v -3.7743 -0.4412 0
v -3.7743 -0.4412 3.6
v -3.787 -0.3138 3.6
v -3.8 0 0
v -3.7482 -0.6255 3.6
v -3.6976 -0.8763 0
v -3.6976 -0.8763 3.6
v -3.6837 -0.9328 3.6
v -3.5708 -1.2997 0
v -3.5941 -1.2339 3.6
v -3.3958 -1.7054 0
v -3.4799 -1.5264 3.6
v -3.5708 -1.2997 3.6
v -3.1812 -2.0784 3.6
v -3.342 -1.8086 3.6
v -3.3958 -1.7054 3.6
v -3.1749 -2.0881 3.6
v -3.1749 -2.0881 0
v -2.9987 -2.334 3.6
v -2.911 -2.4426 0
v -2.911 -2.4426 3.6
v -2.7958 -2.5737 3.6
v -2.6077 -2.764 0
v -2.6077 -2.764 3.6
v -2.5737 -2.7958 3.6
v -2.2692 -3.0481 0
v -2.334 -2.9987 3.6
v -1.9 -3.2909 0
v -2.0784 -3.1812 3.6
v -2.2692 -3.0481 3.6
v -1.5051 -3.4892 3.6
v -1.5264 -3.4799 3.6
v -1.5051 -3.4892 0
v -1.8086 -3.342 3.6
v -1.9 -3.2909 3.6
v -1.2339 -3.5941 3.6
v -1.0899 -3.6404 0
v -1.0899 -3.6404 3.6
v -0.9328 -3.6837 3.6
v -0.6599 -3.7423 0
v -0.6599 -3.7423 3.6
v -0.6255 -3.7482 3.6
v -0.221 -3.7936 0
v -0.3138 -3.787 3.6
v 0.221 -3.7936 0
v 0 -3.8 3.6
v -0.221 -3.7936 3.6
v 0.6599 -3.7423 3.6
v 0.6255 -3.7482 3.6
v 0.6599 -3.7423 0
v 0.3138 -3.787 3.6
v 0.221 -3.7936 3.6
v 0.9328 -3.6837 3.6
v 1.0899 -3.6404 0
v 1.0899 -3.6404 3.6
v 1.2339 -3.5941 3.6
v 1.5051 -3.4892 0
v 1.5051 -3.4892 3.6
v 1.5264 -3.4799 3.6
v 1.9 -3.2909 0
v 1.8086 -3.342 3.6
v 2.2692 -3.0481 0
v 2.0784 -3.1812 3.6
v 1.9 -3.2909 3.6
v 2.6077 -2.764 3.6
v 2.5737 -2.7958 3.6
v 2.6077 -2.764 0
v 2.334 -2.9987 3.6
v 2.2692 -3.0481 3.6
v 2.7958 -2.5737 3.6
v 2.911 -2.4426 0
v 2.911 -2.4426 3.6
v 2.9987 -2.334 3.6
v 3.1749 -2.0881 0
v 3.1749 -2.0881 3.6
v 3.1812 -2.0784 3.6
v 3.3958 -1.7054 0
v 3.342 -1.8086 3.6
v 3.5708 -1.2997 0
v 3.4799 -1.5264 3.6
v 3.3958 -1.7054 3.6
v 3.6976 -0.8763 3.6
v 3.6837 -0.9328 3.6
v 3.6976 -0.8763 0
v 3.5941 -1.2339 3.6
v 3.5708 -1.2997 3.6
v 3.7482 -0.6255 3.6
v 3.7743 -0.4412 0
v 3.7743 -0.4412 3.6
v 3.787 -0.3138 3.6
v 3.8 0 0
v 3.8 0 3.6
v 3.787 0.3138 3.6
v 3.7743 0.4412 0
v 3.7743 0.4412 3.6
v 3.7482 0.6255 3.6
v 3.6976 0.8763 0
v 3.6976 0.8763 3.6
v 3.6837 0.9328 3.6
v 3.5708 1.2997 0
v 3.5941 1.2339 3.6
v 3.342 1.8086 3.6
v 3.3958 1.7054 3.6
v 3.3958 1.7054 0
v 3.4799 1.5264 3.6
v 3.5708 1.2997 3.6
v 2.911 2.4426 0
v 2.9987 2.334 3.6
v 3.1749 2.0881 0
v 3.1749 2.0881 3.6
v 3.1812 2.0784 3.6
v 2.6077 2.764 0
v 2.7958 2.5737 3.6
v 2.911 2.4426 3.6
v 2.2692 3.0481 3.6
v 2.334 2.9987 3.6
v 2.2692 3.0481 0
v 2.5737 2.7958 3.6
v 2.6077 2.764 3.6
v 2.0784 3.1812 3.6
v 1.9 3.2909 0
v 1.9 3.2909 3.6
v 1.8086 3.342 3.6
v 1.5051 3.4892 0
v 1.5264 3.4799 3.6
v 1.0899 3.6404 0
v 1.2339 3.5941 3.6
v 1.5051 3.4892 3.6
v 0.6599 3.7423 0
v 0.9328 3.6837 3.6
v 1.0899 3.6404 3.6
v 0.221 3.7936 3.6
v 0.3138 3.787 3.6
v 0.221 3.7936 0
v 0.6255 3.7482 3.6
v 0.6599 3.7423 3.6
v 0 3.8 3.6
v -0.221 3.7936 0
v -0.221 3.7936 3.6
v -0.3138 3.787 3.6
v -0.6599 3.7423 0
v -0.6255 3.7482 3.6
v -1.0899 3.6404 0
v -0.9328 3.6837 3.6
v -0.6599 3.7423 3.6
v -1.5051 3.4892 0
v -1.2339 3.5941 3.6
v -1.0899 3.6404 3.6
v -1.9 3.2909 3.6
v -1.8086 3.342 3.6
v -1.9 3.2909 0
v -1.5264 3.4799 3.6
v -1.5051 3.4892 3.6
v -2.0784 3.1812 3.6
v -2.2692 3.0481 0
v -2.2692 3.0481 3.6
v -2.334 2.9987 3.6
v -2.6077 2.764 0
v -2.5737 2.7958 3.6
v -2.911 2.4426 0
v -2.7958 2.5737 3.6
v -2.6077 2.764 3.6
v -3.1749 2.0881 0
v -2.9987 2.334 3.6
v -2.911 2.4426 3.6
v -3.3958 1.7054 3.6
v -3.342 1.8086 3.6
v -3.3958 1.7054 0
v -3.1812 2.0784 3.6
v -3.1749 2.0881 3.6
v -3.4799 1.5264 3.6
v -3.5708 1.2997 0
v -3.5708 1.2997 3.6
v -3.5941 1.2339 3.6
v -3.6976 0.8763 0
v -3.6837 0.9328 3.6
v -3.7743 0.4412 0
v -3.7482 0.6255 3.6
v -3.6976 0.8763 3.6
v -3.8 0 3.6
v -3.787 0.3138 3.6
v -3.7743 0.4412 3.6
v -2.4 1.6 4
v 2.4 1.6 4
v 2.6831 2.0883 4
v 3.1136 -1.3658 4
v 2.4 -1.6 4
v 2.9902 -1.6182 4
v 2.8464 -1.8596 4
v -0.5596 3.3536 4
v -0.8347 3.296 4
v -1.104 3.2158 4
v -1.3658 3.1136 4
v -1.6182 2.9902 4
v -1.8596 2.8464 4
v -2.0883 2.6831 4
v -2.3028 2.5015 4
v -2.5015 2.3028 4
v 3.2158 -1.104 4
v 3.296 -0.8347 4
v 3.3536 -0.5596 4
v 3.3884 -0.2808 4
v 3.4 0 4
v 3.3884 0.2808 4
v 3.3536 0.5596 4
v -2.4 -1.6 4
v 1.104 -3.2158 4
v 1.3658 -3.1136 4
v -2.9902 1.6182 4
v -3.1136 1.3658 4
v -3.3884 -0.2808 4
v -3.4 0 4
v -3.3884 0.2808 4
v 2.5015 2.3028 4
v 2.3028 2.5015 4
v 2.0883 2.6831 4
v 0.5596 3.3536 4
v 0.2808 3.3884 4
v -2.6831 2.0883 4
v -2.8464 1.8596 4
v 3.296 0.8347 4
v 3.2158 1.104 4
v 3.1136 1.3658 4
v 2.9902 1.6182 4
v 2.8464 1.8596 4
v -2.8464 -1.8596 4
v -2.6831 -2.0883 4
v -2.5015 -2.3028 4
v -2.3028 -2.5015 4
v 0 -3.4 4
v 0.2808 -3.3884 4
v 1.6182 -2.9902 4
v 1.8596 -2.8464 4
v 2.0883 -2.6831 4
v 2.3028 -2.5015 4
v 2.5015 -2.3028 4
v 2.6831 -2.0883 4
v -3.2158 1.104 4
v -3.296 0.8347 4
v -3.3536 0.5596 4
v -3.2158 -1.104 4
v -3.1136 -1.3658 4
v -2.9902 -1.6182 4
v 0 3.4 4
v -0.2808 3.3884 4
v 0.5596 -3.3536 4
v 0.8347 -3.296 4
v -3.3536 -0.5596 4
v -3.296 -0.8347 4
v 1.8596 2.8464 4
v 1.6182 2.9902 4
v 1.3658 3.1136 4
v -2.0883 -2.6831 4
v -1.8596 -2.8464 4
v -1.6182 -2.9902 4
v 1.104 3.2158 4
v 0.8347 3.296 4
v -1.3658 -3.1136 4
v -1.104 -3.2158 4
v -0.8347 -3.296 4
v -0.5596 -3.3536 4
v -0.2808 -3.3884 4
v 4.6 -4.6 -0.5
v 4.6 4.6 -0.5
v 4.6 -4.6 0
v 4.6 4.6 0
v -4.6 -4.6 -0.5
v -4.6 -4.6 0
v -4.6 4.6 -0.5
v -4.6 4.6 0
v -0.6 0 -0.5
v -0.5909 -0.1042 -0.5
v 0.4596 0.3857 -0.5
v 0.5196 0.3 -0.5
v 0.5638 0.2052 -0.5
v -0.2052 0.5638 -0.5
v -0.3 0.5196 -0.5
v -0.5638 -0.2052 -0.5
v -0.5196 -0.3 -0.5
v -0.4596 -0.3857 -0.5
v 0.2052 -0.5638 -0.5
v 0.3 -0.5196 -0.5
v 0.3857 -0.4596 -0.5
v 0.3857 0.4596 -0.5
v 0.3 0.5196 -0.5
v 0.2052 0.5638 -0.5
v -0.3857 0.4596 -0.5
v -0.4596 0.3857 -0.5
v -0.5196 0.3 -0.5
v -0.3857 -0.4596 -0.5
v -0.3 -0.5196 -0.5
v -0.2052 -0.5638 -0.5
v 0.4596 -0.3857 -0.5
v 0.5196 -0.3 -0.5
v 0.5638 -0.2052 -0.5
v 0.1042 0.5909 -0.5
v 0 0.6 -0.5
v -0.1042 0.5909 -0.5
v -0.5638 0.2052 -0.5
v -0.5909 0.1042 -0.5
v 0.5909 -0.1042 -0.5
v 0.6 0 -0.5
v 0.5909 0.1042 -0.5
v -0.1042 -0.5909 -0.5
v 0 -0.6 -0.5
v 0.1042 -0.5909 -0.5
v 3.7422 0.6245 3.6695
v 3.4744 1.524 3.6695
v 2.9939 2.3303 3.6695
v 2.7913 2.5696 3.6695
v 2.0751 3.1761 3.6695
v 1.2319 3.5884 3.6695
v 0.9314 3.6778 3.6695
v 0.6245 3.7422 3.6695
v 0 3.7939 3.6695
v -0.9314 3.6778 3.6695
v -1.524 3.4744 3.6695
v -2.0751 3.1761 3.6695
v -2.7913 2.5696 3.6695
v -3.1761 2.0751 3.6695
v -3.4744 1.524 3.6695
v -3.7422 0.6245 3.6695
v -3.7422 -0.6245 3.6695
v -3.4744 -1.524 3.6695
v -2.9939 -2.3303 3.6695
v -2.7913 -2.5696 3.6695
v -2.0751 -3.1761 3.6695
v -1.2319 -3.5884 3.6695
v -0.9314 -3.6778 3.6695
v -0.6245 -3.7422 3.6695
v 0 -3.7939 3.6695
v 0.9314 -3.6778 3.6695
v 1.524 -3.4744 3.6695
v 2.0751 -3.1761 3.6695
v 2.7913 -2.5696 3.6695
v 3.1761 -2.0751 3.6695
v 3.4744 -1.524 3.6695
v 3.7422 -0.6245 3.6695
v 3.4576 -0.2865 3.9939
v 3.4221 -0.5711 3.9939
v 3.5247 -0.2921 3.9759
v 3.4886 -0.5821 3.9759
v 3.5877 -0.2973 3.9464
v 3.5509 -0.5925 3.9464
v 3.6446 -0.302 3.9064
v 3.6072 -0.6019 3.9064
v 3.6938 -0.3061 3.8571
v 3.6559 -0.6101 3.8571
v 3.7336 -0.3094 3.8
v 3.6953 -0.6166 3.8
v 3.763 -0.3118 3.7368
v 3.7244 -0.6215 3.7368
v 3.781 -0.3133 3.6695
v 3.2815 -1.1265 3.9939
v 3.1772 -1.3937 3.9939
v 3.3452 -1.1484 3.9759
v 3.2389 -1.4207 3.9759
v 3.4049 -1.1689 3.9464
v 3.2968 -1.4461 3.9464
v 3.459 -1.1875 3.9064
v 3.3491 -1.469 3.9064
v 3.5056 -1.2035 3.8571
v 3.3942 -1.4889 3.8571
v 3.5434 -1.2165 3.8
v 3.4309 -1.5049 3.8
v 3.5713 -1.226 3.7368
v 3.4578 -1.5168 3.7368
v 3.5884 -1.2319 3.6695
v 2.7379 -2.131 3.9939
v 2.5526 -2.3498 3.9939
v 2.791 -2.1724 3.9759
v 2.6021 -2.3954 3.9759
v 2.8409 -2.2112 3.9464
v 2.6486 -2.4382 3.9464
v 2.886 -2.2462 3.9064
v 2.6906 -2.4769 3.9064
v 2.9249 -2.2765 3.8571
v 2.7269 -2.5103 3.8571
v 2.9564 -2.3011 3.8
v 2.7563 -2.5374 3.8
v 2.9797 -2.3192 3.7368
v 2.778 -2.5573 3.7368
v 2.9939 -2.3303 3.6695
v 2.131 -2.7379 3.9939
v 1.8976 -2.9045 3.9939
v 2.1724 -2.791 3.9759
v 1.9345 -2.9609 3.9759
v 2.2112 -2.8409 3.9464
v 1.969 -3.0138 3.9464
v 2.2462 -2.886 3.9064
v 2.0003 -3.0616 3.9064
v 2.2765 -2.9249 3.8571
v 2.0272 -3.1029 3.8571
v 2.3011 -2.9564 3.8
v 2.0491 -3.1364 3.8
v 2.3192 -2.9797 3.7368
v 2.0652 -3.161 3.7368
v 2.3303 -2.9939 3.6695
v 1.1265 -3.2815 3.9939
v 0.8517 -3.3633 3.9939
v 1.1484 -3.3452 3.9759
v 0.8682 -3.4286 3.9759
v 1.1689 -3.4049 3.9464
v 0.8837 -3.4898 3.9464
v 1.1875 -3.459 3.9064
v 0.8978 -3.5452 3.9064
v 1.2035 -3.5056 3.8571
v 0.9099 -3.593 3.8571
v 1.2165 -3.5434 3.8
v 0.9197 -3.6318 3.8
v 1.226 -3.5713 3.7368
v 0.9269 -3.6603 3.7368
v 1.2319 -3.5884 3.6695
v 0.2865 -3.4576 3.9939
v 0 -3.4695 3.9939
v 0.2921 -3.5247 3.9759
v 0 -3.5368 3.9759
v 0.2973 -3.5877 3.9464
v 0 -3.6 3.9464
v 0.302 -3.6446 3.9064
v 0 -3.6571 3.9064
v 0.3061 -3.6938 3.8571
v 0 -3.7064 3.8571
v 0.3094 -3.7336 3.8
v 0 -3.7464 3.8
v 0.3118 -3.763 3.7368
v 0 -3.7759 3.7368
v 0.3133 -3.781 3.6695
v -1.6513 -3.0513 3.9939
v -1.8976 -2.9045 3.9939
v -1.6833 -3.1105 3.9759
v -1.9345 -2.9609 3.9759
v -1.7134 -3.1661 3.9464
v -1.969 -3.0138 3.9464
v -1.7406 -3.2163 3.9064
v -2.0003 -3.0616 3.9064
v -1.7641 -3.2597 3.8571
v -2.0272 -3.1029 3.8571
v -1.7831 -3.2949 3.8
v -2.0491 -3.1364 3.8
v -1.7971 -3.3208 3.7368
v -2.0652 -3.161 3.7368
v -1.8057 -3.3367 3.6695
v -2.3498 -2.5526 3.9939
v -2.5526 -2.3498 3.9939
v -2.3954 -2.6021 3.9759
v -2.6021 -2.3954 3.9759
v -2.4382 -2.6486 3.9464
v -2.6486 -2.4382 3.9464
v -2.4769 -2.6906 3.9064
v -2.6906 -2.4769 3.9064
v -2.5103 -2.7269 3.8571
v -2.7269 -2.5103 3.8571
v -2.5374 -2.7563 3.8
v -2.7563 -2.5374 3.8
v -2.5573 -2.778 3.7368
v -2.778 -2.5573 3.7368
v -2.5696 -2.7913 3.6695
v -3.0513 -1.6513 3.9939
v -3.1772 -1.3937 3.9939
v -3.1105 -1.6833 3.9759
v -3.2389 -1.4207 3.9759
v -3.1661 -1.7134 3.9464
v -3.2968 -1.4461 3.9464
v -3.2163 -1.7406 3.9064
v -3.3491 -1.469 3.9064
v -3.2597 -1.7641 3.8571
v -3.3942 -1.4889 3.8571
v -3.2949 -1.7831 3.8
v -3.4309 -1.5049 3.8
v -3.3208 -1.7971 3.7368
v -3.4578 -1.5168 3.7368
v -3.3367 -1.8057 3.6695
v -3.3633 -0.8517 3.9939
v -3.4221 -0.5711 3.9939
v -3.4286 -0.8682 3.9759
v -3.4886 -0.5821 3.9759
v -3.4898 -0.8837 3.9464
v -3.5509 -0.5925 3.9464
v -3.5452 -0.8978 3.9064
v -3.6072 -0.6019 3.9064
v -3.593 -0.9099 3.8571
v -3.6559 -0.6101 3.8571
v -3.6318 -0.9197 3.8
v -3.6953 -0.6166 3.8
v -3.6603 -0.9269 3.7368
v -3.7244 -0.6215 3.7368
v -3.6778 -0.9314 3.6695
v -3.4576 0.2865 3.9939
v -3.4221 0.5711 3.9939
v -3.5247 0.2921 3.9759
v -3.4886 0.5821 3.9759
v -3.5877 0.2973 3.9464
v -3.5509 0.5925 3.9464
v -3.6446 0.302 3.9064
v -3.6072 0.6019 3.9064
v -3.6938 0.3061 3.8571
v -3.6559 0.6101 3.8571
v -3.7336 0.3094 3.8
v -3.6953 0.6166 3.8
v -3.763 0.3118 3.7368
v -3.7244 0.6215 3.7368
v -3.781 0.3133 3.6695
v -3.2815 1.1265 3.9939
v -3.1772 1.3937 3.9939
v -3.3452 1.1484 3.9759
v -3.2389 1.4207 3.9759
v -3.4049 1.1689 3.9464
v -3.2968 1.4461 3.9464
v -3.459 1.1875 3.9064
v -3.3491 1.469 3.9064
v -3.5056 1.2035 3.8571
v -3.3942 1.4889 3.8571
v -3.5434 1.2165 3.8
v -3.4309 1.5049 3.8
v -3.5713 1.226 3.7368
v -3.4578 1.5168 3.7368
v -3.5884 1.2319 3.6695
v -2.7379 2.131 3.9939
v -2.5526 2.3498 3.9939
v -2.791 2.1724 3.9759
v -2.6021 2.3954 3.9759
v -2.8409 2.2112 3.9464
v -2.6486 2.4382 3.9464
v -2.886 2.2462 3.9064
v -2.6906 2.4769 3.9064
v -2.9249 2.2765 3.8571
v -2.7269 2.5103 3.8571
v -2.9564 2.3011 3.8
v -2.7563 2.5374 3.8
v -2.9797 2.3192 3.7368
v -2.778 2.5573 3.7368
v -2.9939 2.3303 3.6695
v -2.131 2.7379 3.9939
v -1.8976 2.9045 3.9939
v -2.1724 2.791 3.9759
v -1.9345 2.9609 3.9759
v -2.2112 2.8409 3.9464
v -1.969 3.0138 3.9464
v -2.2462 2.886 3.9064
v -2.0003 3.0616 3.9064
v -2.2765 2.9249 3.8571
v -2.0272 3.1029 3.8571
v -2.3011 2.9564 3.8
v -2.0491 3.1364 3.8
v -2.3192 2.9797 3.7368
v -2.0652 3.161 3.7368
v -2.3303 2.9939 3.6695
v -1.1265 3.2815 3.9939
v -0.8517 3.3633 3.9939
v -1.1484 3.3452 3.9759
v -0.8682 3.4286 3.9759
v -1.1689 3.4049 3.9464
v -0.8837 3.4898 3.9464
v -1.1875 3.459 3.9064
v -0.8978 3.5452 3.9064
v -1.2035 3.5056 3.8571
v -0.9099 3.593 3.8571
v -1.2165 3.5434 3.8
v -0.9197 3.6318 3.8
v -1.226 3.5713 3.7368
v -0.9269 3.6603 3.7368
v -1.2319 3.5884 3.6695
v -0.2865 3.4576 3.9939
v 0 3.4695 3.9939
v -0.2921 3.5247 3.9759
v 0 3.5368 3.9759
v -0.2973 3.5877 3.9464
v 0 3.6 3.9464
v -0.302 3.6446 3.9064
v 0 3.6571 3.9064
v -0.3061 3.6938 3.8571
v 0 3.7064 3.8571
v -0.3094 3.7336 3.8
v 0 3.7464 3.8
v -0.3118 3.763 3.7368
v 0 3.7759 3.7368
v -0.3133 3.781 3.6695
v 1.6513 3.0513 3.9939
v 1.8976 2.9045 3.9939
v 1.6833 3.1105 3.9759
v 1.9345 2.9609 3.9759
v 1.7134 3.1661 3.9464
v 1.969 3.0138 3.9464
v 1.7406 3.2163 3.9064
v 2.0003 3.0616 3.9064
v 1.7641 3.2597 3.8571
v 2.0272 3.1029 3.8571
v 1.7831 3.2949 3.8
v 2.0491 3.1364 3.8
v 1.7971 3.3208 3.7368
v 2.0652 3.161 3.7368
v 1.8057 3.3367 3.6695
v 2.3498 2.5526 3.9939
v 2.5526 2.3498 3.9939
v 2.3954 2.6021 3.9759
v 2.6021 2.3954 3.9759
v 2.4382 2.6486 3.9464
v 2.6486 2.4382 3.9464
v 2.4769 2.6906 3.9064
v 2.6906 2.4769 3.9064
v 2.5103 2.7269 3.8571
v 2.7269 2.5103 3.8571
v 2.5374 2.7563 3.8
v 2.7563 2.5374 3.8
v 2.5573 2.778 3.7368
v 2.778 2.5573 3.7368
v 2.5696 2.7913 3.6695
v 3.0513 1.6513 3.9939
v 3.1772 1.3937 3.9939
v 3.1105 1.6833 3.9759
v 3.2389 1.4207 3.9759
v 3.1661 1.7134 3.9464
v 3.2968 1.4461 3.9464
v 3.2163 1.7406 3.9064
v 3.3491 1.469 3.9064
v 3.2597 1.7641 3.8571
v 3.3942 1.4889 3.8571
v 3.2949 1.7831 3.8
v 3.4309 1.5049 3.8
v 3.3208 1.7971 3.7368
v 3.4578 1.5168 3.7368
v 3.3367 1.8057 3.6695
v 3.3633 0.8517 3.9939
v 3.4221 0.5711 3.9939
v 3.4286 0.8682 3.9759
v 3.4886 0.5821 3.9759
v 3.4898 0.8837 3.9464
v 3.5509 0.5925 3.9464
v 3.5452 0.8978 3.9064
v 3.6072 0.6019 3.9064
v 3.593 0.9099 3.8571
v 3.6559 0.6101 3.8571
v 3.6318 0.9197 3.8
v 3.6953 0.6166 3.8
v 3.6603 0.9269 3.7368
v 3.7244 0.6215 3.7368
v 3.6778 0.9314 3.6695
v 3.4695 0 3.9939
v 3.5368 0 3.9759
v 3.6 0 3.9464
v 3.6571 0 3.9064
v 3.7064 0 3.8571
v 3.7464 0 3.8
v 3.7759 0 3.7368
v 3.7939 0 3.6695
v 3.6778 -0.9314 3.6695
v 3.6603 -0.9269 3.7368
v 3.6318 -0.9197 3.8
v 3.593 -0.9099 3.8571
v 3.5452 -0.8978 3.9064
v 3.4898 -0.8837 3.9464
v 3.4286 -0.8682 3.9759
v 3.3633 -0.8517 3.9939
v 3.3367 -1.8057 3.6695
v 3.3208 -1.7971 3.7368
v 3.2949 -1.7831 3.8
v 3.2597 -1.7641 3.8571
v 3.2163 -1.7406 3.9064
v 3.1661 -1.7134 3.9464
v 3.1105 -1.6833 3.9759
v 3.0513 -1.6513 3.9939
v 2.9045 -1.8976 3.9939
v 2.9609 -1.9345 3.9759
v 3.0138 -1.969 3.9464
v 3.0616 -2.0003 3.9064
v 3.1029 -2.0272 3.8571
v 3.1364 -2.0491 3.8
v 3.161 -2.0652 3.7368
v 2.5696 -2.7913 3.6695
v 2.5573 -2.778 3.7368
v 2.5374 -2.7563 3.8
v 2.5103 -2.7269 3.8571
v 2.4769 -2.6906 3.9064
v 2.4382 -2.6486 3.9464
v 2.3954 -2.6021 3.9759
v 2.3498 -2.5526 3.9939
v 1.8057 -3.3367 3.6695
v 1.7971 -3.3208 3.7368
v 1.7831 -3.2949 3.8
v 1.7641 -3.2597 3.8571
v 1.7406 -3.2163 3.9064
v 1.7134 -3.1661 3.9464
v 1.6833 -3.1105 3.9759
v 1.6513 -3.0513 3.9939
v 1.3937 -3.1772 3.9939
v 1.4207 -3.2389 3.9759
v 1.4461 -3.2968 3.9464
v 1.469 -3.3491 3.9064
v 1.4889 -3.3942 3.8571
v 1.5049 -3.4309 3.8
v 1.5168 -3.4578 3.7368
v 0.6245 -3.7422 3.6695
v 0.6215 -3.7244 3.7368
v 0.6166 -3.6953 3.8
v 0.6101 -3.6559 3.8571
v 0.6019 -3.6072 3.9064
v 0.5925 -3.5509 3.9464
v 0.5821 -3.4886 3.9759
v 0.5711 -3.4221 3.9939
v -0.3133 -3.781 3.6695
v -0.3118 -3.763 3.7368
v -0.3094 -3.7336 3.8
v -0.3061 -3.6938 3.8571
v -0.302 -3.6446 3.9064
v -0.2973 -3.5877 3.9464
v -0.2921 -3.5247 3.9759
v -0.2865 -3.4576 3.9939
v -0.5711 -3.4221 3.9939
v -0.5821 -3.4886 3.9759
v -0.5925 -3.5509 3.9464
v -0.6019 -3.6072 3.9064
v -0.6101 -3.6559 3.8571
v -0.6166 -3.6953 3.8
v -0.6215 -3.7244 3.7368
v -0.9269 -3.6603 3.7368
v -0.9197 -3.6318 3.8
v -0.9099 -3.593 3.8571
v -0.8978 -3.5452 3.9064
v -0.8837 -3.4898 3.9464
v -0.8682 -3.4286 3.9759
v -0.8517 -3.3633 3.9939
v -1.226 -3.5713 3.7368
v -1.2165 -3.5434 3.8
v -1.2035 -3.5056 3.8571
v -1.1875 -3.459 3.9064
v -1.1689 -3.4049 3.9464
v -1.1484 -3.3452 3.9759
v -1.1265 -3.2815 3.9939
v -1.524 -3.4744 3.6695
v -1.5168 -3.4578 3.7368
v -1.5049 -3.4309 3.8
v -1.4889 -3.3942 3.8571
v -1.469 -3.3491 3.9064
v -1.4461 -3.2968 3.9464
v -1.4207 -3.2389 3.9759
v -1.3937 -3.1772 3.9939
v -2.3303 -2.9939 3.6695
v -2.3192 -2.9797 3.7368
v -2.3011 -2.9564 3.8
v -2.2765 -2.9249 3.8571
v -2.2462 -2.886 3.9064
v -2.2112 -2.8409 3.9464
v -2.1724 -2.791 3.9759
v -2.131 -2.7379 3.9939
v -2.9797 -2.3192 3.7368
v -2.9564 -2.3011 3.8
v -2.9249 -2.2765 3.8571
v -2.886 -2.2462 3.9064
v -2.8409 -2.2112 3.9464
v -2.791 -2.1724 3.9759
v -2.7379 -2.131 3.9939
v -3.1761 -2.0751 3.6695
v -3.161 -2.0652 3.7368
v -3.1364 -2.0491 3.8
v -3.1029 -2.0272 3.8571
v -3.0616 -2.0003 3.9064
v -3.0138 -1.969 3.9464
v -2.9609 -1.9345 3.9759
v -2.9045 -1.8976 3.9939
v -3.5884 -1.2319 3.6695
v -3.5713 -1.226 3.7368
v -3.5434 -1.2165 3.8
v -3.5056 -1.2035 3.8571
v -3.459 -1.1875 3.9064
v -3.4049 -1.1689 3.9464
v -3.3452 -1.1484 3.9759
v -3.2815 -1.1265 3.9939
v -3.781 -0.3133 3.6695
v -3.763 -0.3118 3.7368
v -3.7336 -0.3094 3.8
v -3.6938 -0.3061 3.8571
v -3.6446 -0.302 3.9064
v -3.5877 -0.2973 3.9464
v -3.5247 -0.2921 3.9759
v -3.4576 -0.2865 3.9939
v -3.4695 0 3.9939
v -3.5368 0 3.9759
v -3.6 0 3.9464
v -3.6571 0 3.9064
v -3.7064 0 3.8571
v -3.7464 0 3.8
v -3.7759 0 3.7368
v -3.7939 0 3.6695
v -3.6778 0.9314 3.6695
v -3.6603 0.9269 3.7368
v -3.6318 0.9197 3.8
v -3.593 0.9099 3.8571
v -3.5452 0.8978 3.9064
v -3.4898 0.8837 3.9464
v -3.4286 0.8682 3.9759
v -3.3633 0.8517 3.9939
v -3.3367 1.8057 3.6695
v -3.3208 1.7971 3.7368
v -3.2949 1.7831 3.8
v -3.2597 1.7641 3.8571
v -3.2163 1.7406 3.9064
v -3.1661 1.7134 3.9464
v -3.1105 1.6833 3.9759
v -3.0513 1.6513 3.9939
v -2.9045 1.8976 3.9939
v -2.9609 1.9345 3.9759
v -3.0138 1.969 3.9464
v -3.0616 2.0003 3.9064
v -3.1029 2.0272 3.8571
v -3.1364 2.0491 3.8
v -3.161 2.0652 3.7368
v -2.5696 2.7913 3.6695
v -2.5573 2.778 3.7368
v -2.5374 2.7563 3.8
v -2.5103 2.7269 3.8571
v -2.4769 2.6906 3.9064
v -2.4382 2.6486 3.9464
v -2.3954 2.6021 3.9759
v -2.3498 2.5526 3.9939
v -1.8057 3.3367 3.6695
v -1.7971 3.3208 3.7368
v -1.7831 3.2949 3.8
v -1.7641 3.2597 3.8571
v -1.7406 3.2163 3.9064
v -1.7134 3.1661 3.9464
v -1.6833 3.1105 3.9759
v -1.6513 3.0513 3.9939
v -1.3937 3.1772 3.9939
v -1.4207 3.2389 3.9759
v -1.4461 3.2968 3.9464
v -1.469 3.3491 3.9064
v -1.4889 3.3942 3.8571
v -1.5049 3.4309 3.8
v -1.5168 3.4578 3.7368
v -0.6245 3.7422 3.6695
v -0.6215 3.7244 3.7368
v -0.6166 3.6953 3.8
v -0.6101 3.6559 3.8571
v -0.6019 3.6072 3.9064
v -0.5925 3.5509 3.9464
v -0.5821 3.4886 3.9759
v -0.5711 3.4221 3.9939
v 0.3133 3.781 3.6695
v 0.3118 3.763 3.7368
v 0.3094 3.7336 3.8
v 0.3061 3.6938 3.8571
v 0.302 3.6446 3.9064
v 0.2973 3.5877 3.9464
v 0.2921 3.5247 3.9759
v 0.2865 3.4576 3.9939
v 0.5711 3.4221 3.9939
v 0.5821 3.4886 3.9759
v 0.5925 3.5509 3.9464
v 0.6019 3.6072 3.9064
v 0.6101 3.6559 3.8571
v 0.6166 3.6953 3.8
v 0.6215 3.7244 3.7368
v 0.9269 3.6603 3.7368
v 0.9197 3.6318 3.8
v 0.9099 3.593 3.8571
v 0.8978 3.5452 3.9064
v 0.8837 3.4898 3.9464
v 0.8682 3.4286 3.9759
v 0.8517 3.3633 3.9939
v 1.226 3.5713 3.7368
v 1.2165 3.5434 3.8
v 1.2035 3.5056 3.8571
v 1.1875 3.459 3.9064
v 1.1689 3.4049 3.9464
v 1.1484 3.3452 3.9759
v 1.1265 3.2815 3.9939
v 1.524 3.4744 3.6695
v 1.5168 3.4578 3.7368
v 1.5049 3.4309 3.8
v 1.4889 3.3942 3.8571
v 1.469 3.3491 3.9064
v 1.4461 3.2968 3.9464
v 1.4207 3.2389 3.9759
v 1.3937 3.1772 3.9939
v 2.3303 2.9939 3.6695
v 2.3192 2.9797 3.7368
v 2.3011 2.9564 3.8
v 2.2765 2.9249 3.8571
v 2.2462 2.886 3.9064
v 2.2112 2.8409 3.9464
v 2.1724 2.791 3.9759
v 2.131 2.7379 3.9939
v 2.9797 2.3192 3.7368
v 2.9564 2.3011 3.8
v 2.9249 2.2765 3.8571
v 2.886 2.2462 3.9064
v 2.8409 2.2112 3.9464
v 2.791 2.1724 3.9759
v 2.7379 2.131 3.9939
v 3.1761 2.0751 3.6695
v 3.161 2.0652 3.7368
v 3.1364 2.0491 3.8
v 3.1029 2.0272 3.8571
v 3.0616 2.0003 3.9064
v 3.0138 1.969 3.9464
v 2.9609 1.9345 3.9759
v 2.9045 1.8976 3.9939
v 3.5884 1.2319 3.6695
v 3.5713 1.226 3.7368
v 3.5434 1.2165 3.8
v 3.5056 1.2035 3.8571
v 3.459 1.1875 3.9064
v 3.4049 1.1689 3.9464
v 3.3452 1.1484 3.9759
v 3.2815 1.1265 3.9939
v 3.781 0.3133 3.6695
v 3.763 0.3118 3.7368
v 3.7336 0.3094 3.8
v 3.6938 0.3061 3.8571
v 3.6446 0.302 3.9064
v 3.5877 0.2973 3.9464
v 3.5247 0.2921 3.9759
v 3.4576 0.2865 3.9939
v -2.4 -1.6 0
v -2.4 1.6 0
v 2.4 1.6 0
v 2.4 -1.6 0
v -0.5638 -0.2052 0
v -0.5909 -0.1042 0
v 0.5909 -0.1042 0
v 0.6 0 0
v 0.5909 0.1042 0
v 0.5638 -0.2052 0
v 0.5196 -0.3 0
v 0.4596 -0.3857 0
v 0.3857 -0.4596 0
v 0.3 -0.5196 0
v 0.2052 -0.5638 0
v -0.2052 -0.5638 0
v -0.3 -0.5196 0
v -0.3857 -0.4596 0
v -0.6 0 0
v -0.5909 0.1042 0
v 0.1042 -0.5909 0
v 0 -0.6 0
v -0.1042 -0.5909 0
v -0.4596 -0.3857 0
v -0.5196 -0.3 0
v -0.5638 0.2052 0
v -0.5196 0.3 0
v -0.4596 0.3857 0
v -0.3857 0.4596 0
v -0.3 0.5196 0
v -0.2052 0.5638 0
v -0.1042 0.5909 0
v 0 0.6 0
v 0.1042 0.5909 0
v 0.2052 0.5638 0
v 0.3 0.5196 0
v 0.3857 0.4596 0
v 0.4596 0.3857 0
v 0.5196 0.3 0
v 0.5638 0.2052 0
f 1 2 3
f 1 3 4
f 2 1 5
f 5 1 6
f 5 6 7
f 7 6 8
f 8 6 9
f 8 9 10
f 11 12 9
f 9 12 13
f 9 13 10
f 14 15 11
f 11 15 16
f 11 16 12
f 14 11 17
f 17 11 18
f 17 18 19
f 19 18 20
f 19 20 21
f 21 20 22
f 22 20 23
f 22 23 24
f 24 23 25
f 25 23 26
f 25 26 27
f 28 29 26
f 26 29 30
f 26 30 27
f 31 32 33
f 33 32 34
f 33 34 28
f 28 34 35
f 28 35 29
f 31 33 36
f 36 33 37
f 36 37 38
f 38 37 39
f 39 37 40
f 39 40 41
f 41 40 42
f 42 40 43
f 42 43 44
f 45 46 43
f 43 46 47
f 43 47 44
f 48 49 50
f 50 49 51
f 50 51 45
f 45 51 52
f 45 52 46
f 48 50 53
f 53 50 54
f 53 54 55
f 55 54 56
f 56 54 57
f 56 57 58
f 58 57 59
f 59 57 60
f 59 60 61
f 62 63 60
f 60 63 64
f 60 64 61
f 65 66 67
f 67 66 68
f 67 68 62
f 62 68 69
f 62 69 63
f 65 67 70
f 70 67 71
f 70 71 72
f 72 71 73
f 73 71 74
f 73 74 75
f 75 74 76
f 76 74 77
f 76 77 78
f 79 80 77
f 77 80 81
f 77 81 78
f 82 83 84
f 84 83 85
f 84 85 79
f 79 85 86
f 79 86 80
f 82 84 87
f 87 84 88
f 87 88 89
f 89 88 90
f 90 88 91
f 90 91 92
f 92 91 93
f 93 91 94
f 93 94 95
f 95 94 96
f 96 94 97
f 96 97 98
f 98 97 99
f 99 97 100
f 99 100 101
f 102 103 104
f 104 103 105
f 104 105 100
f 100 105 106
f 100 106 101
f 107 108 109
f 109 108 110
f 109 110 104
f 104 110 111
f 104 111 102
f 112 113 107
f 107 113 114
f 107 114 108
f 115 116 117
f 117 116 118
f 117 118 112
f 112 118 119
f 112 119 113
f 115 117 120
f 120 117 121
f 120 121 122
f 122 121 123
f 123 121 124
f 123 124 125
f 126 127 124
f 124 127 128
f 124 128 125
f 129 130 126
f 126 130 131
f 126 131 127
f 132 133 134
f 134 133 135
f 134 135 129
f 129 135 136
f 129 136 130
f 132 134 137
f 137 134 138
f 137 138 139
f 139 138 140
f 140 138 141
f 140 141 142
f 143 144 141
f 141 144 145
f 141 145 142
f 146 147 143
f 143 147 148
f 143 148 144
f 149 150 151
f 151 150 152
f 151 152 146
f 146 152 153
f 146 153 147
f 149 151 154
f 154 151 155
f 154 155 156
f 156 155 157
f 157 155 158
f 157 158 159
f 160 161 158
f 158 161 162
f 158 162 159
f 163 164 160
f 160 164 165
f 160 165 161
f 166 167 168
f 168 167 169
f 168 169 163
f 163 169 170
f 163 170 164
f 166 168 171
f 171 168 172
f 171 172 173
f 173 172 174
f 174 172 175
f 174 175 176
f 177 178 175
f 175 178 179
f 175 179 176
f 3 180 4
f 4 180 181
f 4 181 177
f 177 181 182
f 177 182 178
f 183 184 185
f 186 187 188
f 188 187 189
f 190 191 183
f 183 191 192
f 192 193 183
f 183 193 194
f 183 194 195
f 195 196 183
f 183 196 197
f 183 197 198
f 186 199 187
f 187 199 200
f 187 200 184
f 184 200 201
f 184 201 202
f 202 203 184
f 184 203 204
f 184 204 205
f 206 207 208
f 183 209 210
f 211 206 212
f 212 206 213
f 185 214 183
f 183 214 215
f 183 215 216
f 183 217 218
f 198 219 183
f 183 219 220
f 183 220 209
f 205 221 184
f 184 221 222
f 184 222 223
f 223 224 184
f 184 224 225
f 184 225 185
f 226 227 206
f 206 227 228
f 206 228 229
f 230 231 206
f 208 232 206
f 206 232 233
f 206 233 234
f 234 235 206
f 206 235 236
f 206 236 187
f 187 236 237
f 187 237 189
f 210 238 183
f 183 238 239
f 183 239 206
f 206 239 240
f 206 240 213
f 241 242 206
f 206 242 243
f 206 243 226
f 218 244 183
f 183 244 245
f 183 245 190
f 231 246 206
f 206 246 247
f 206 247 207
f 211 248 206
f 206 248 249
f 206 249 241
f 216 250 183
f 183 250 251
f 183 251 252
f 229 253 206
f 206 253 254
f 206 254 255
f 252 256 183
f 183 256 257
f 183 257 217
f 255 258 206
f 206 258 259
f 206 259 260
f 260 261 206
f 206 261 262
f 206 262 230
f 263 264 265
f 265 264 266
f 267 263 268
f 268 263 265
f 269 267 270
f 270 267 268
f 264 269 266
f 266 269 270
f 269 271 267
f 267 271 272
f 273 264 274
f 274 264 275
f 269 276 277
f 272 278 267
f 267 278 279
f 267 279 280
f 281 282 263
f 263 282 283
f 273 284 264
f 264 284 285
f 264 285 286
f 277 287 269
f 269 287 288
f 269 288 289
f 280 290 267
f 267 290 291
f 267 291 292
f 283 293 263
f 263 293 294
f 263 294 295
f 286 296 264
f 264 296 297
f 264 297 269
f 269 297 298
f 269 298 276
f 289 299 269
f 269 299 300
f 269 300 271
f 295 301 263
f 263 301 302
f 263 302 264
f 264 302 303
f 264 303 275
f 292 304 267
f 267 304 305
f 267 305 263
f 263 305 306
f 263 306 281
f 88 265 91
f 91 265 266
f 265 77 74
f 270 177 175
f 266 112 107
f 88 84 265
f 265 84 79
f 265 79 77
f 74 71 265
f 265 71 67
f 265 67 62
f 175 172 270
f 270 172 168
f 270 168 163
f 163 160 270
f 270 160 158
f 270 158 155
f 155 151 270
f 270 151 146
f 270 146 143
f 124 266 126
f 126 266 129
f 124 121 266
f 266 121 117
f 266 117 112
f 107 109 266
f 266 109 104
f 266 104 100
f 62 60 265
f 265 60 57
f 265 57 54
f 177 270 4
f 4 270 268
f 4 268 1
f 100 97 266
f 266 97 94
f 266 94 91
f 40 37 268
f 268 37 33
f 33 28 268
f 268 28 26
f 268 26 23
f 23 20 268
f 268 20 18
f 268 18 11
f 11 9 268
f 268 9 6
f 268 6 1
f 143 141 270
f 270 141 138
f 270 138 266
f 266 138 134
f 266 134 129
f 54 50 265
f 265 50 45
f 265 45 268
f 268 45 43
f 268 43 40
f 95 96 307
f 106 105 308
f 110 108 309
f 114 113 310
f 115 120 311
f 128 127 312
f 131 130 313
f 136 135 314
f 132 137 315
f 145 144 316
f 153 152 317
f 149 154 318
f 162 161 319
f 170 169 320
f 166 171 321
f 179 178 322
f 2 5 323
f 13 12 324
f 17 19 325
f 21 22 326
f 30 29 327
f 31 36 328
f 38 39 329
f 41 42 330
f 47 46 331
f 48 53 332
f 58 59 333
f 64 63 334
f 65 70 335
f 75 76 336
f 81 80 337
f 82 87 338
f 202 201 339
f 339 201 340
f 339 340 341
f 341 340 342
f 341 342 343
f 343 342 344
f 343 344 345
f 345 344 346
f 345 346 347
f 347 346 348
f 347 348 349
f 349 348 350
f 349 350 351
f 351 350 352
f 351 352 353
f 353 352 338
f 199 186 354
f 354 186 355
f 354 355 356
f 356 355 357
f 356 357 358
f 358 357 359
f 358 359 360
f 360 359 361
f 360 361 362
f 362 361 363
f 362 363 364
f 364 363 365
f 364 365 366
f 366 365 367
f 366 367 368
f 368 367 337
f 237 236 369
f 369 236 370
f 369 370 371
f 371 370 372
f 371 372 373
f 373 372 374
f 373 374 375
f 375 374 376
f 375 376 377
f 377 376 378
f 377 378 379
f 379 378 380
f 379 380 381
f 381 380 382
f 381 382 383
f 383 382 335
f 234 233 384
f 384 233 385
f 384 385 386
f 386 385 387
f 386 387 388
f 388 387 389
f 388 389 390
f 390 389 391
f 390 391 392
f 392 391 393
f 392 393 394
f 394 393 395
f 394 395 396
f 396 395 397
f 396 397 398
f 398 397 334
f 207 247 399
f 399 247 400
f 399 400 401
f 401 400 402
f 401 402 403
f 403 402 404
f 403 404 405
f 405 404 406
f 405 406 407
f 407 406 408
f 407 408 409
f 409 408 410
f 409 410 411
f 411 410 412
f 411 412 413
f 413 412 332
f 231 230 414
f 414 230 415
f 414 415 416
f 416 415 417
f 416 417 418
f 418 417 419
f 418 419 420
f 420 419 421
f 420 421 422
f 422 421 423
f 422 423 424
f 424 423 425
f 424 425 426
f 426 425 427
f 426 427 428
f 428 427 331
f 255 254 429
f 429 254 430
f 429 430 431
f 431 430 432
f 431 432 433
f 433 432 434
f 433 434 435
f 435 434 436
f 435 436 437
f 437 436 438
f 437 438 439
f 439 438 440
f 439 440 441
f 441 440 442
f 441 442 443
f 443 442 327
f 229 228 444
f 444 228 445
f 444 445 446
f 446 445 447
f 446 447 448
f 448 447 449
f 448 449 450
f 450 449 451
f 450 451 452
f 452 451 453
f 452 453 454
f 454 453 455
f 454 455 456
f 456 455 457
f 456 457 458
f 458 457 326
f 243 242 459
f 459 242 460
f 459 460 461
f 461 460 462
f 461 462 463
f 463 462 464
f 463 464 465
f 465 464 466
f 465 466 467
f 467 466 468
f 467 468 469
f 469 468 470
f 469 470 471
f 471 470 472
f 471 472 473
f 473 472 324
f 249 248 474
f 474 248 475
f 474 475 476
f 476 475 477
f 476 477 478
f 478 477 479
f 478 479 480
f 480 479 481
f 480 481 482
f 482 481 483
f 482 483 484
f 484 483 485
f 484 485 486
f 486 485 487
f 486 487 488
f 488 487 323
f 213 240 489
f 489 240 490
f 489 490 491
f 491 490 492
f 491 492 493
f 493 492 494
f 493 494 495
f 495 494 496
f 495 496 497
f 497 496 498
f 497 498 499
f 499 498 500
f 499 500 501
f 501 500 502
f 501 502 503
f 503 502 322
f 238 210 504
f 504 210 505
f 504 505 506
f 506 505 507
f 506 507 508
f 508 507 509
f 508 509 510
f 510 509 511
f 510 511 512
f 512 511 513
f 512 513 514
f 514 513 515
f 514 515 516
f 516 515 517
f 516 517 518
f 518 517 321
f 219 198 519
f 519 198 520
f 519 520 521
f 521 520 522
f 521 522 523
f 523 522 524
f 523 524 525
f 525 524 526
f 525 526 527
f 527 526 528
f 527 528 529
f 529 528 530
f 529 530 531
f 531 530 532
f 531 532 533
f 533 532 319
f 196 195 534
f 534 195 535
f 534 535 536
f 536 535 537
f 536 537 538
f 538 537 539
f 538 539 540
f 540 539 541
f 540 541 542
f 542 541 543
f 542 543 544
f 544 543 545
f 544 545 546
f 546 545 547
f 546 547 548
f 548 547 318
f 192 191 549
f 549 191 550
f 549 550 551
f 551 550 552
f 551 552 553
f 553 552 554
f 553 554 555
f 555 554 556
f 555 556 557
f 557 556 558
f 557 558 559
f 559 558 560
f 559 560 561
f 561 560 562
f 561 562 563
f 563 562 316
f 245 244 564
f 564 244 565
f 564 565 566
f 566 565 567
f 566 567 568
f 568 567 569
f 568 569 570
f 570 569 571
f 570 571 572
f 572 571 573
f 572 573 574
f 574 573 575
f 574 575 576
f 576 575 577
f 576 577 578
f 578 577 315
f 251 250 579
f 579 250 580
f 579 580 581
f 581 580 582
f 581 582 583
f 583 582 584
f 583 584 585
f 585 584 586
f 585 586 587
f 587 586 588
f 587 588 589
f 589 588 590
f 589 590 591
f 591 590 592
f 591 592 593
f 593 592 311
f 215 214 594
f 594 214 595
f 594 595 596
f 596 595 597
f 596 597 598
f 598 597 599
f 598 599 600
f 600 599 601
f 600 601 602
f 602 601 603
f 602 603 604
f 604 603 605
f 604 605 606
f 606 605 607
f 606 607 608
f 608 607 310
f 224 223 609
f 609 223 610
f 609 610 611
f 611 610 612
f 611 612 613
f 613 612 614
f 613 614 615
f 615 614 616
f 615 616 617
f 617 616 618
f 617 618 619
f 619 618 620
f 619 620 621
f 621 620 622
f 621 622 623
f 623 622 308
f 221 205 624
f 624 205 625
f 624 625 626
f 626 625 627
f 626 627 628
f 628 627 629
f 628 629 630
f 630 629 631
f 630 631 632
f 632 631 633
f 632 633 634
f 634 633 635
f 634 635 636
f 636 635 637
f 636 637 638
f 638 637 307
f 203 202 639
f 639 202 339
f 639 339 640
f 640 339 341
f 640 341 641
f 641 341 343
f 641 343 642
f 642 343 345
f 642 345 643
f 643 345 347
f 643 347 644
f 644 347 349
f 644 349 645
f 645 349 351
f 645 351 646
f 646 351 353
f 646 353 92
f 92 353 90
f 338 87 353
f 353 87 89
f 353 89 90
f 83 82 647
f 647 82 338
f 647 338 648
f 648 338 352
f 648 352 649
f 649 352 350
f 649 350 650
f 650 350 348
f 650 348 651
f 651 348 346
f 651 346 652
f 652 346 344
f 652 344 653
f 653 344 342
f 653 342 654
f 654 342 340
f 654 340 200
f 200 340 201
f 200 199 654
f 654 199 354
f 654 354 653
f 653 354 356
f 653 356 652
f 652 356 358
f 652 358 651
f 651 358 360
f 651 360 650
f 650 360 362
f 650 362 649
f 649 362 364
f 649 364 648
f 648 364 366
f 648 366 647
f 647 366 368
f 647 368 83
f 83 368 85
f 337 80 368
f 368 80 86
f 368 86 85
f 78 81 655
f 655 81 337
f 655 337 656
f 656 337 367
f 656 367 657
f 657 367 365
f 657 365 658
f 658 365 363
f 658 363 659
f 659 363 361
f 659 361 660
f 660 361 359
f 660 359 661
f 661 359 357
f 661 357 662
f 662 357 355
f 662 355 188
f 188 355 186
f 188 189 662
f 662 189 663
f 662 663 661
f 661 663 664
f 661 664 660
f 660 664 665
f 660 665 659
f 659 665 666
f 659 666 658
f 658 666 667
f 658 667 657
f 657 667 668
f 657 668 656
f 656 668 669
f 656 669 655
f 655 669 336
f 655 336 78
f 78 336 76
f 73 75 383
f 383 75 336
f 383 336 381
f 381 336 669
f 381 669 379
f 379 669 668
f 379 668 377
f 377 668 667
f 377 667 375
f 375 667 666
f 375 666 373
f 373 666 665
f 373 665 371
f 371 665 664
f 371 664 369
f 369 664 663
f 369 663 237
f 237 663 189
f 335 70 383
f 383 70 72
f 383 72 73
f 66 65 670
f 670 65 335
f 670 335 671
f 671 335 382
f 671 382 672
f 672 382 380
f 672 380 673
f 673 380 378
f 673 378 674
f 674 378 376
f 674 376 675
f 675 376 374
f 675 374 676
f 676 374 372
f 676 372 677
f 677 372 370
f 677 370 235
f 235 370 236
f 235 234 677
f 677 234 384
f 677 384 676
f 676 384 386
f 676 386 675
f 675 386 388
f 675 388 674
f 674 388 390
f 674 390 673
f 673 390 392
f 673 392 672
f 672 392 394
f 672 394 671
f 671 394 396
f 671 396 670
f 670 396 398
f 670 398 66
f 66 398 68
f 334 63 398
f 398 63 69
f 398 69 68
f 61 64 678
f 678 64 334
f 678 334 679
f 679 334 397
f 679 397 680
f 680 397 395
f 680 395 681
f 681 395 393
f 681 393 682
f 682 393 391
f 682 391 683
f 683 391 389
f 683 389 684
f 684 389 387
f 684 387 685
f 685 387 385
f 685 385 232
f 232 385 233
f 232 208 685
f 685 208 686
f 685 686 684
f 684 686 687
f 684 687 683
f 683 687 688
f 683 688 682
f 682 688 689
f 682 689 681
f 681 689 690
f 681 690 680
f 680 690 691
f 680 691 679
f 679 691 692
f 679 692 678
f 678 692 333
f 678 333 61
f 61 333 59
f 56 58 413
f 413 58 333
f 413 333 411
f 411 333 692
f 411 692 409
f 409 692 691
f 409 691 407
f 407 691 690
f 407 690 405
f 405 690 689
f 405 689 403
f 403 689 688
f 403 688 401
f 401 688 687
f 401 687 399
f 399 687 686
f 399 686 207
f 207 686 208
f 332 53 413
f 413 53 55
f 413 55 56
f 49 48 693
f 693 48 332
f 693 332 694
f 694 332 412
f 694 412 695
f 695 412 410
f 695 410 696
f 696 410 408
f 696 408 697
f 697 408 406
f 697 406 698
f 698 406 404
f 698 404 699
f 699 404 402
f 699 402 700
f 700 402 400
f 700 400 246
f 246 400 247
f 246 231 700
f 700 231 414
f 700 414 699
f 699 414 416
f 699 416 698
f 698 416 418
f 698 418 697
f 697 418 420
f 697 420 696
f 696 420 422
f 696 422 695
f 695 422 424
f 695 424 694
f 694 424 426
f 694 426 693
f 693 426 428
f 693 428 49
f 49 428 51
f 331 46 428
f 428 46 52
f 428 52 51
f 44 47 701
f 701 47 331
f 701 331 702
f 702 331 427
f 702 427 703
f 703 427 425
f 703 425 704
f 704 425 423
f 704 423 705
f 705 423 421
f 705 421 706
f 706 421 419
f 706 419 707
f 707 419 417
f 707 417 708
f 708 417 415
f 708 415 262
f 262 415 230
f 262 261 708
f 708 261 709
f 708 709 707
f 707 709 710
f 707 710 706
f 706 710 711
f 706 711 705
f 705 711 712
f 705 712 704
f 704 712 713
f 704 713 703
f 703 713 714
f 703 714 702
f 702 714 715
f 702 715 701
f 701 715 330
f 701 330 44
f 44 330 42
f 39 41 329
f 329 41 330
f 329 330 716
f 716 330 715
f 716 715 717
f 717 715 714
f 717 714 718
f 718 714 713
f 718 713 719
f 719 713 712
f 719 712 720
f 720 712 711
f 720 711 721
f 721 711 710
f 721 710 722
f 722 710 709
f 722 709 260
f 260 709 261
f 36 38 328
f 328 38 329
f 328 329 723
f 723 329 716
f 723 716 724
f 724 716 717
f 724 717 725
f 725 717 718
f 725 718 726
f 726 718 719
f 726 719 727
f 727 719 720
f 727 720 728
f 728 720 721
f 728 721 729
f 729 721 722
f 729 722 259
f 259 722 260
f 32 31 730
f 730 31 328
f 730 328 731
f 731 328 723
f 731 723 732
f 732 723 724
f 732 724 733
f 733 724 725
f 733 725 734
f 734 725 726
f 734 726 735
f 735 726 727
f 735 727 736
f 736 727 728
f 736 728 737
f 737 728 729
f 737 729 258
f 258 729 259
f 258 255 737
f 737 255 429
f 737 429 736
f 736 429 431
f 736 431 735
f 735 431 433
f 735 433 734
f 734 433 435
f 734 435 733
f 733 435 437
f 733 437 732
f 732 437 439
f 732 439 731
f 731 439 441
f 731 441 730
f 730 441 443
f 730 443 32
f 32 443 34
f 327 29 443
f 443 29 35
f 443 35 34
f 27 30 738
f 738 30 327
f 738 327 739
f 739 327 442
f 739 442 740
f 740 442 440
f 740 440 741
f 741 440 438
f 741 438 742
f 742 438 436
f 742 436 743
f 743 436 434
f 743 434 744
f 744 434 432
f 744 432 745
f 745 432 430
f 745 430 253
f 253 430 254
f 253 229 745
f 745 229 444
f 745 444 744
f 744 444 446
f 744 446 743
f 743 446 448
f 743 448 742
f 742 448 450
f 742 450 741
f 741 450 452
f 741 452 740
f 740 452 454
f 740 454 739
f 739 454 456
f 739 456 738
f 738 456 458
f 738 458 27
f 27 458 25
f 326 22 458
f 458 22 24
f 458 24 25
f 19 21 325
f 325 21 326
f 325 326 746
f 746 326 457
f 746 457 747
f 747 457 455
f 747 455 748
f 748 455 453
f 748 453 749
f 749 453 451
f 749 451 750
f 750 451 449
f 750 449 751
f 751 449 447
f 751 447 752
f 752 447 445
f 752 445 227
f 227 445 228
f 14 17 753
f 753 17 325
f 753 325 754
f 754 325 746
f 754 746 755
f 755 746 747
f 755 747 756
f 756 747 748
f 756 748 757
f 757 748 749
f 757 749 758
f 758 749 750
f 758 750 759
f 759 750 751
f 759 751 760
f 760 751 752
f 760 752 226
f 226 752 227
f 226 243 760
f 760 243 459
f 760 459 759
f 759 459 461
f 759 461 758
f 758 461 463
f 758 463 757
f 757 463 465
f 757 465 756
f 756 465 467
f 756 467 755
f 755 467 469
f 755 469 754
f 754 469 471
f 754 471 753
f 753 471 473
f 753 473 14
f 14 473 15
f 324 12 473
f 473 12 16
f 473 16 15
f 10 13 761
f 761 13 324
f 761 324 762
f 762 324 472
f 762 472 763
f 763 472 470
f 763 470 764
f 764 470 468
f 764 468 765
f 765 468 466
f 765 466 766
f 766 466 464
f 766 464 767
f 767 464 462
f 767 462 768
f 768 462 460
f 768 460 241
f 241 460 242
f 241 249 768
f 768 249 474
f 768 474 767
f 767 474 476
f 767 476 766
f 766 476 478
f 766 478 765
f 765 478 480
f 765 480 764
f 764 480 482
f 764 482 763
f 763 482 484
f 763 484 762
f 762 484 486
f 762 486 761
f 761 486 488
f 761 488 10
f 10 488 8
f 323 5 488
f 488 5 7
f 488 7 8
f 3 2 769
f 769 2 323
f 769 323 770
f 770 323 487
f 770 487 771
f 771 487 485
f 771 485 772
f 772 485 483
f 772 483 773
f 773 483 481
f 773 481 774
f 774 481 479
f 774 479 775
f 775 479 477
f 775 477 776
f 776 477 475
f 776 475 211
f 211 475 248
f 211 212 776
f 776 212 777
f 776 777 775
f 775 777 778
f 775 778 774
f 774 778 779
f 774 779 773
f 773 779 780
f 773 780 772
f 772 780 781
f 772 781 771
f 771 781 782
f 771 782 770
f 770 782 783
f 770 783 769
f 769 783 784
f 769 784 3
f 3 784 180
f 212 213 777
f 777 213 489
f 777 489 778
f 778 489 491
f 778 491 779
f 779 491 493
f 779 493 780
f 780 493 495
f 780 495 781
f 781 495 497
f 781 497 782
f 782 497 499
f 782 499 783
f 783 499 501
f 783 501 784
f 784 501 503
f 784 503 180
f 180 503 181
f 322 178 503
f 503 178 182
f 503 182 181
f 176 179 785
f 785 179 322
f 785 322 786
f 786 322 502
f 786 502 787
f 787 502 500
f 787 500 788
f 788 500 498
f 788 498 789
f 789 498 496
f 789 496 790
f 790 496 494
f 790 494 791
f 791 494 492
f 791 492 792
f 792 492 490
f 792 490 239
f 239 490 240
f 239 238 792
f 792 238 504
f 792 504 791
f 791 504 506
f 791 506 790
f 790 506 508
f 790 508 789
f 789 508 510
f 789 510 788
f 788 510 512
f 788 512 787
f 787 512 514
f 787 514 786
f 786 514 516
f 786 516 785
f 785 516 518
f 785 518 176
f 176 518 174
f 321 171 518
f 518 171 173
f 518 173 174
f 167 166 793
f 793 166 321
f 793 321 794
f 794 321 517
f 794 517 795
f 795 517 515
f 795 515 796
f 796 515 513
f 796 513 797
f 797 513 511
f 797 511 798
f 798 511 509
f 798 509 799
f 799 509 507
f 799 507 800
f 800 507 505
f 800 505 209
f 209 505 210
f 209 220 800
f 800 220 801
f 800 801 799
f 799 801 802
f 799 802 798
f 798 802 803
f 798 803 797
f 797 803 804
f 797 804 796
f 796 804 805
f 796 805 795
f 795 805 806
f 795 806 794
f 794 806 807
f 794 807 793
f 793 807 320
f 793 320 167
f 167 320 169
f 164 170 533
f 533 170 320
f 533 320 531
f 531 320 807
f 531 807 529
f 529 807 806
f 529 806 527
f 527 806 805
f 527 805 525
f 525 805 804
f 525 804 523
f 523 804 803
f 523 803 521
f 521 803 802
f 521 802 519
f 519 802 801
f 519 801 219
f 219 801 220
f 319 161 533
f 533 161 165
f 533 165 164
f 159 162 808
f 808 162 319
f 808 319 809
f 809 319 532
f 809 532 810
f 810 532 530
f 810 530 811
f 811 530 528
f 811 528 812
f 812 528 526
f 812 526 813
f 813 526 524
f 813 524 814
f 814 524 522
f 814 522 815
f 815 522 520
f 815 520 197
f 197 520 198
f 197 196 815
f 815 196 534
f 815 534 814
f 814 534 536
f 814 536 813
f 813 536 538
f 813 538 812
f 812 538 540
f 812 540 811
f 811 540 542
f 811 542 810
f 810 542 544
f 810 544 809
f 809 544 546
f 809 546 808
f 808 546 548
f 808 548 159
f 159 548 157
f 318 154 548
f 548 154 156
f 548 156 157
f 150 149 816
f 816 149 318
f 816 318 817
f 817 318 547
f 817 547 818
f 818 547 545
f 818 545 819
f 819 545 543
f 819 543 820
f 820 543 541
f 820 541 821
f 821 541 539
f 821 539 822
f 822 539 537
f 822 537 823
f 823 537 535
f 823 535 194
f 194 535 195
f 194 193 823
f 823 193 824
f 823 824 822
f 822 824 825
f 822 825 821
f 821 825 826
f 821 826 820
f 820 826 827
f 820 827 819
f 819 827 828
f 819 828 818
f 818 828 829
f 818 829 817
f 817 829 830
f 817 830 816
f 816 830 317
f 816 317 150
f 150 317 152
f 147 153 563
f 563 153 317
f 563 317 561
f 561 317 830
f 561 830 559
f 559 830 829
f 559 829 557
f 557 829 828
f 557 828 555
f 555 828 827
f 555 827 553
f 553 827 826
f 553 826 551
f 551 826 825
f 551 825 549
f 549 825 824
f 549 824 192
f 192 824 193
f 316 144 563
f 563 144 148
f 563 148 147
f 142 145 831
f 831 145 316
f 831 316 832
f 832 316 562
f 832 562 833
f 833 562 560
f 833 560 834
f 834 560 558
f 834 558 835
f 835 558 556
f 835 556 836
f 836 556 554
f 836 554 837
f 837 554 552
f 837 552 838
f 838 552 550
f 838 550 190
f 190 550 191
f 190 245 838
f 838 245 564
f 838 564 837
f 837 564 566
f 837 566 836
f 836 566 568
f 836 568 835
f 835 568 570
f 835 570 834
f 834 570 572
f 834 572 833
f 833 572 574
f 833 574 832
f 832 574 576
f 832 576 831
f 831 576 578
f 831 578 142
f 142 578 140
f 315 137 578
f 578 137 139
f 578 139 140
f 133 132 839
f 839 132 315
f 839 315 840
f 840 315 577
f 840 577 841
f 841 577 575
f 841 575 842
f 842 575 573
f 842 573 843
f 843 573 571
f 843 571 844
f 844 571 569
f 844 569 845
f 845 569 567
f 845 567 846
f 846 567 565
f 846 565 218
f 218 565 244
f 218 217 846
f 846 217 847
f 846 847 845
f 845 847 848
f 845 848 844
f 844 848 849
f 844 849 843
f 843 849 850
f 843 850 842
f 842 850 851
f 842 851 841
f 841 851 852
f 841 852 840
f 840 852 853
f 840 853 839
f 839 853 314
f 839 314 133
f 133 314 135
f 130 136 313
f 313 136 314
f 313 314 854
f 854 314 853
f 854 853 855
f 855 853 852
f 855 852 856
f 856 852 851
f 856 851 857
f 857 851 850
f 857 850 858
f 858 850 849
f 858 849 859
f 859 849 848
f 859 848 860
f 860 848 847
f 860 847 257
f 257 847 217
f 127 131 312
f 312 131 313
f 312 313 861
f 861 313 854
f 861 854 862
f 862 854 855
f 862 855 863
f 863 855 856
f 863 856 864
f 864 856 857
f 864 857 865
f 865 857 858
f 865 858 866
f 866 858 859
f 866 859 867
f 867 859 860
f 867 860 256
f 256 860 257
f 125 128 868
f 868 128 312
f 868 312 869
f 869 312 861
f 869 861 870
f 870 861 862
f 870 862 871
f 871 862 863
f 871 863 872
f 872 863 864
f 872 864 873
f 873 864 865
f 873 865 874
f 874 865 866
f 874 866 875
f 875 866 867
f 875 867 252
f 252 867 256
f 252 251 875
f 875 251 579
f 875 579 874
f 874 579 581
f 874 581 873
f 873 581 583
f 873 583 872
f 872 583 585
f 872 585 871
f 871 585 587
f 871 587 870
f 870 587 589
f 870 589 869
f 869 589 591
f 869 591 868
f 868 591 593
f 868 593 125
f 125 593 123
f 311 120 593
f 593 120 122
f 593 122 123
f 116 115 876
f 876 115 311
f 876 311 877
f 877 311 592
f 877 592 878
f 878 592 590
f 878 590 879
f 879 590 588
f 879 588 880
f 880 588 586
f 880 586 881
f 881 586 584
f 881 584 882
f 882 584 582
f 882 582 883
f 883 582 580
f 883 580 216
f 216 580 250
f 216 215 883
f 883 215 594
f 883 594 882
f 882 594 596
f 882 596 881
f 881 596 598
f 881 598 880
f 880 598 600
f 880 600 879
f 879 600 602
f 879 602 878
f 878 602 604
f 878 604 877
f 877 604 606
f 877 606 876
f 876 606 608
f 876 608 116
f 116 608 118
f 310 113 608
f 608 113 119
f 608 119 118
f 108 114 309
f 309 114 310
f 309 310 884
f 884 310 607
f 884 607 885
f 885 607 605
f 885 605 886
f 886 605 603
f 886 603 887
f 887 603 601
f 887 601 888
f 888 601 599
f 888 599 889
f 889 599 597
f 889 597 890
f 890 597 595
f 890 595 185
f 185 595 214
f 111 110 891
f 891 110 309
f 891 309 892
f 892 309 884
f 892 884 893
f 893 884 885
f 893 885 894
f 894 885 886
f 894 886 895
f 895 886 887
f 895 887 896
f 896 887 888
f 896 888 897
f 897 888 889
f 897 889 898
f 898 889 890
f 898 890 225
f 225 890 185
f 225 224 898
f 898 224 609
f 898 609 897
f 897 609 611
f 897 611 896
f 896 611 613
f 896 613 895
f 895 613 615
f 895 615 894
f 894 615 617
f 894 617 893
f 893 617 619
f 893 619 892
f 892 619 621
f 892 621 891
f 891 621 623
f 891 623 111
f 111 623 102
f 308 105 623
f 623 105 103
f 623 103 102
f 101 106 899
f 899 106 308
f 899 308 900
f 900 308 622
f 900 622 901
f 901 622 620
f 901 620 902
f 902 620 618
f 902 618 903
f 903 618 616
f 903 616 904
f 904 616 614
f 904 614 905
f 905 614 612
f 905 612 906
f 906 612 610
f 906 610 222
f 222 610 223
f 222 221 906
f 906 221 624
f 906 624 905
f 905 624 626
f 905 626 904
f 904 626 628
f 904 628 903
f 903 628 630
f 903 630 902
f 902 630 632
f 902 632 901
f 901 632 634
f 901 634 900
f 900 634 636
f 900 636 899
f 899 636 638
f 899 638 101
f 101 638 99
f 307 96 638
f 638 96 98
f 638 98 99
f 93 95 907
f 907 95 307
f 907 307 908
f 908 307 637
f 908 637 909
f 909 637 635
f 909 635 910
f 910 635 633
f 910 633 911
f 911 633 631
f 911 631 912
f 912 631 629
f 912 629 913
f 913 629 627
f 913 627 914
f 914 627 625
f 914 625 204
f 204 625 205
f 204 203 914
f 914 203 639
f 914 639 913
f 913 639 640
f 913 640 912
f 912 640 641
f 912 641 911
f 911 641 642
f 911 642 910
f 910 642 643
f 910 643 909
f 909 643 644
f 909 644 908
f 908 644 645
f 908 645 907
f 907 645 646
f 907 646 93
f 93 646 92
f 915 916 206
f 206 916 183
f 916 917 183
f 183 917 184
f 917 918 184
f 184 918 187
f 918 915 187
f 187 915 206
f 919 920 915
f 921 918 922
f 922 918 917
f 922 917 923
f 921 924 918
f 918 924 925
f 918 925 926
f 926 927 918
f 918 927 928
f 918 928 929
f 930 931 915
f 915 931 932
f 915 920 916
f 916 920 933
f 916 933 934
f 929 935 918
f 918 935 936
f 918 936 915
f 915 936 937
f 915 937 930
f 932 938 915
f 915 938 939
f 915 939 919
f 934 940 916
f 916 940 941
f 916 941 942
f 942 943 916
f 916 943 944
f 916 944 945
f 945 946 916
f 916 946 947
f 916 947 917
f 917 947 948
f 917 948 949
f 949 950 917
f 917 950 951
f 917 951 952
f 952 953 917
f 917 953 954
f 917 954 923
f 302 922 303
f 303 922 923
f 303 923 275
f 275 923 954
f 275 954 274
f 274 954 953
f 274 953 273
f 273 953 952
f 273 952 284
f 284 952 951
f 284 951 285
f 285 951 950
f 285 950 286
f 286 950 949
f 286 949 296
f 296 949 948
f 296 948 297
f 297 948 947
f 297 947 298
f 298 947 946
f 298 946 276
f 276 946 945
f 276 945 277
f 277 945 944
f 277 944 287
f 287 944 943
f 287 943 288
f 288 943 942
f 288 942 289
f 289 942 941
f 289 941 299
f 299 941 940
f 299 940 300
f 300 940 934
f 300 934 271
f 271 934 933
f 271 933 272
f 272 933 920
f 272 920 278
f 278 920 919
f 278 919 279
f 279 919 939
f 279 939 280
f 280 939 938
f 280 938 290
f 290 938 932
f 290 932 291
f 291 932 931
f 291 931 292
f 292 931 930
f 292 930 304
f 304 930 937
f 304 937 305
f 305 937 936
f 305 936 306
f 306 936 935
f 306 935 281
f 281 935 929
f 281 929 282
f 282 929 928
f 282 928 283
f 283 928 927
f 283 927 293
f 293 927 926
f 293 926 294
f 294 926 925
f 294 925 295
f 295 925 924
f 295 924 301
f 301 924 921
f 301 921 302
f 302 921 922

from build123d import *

# Parameters (mm, degrees)
SKETCH_1_R          = 3.8
EXTRUDE_1_DEPTH     = 4
SKETCH_2_W          = 9.2
SKETCH_2_H          = 9.2
EXTRUDE_2_DEPTH     = 0.5
FILLET_1_R          = 0.4
SKETCH_4_W          = 4.8
SKETCH_4_H          = 3.2
CUT_EXTRUDE_1_DEPTH = 4
SKETCH_5_R          = 0.6
CUT_EXTRUDE_2_DEPTH = 8.636753237


with BuildPart() as part:
    # Эскиз1 → Бобышка-Вытянуть1 (new body)
    with BuildSketch(Plane.XY):
        Circle(SKETCH_1_R)
    extrude(amount=EXTRUDE_1_DEPTH)

    # Эскиз2 → Бобышка-Вытянуть2 (add)
    with BuildSketch(Plane(origin=(0, 0, 0), x_dir=(-1, 0, 0), z_dir=(0, 0, -1))):
        Rectangle(SKETCH_2_W, SKETCH_2_H)
    extrude(amount=EXTRUDE_2_DEPTH)

    # Скругление1
    fillet_1_edges = [part.edges().sort_by_distance(p)[0] for p in [
        (-3.8, 0, 4),
    ]]
    fillet(fillet_1_edges, radius=FILLET_1_R)

    # Эскиз4 → Вырез-Вытянуть1 (cut)
    with BuildSketch(Plane.XY.offset(4)):
        Rectangle(SKETCH_4_W, SKETCH_4_H)
    extrude(amount=-CUT_EXTRUDE_1_DEPTH, mode=Mode.SUBTRACT)

    # Эскиз5 → Вырез-Вытянуть2 (cut, through all)
    with BuildSketch(Plane.XY):
        Circle(SKETCH_5_R)
    extrude(amount=-CUT_EXTRUDE_2_DEPTH, mode=Mode.SUBTRACT)


solid = part.part
